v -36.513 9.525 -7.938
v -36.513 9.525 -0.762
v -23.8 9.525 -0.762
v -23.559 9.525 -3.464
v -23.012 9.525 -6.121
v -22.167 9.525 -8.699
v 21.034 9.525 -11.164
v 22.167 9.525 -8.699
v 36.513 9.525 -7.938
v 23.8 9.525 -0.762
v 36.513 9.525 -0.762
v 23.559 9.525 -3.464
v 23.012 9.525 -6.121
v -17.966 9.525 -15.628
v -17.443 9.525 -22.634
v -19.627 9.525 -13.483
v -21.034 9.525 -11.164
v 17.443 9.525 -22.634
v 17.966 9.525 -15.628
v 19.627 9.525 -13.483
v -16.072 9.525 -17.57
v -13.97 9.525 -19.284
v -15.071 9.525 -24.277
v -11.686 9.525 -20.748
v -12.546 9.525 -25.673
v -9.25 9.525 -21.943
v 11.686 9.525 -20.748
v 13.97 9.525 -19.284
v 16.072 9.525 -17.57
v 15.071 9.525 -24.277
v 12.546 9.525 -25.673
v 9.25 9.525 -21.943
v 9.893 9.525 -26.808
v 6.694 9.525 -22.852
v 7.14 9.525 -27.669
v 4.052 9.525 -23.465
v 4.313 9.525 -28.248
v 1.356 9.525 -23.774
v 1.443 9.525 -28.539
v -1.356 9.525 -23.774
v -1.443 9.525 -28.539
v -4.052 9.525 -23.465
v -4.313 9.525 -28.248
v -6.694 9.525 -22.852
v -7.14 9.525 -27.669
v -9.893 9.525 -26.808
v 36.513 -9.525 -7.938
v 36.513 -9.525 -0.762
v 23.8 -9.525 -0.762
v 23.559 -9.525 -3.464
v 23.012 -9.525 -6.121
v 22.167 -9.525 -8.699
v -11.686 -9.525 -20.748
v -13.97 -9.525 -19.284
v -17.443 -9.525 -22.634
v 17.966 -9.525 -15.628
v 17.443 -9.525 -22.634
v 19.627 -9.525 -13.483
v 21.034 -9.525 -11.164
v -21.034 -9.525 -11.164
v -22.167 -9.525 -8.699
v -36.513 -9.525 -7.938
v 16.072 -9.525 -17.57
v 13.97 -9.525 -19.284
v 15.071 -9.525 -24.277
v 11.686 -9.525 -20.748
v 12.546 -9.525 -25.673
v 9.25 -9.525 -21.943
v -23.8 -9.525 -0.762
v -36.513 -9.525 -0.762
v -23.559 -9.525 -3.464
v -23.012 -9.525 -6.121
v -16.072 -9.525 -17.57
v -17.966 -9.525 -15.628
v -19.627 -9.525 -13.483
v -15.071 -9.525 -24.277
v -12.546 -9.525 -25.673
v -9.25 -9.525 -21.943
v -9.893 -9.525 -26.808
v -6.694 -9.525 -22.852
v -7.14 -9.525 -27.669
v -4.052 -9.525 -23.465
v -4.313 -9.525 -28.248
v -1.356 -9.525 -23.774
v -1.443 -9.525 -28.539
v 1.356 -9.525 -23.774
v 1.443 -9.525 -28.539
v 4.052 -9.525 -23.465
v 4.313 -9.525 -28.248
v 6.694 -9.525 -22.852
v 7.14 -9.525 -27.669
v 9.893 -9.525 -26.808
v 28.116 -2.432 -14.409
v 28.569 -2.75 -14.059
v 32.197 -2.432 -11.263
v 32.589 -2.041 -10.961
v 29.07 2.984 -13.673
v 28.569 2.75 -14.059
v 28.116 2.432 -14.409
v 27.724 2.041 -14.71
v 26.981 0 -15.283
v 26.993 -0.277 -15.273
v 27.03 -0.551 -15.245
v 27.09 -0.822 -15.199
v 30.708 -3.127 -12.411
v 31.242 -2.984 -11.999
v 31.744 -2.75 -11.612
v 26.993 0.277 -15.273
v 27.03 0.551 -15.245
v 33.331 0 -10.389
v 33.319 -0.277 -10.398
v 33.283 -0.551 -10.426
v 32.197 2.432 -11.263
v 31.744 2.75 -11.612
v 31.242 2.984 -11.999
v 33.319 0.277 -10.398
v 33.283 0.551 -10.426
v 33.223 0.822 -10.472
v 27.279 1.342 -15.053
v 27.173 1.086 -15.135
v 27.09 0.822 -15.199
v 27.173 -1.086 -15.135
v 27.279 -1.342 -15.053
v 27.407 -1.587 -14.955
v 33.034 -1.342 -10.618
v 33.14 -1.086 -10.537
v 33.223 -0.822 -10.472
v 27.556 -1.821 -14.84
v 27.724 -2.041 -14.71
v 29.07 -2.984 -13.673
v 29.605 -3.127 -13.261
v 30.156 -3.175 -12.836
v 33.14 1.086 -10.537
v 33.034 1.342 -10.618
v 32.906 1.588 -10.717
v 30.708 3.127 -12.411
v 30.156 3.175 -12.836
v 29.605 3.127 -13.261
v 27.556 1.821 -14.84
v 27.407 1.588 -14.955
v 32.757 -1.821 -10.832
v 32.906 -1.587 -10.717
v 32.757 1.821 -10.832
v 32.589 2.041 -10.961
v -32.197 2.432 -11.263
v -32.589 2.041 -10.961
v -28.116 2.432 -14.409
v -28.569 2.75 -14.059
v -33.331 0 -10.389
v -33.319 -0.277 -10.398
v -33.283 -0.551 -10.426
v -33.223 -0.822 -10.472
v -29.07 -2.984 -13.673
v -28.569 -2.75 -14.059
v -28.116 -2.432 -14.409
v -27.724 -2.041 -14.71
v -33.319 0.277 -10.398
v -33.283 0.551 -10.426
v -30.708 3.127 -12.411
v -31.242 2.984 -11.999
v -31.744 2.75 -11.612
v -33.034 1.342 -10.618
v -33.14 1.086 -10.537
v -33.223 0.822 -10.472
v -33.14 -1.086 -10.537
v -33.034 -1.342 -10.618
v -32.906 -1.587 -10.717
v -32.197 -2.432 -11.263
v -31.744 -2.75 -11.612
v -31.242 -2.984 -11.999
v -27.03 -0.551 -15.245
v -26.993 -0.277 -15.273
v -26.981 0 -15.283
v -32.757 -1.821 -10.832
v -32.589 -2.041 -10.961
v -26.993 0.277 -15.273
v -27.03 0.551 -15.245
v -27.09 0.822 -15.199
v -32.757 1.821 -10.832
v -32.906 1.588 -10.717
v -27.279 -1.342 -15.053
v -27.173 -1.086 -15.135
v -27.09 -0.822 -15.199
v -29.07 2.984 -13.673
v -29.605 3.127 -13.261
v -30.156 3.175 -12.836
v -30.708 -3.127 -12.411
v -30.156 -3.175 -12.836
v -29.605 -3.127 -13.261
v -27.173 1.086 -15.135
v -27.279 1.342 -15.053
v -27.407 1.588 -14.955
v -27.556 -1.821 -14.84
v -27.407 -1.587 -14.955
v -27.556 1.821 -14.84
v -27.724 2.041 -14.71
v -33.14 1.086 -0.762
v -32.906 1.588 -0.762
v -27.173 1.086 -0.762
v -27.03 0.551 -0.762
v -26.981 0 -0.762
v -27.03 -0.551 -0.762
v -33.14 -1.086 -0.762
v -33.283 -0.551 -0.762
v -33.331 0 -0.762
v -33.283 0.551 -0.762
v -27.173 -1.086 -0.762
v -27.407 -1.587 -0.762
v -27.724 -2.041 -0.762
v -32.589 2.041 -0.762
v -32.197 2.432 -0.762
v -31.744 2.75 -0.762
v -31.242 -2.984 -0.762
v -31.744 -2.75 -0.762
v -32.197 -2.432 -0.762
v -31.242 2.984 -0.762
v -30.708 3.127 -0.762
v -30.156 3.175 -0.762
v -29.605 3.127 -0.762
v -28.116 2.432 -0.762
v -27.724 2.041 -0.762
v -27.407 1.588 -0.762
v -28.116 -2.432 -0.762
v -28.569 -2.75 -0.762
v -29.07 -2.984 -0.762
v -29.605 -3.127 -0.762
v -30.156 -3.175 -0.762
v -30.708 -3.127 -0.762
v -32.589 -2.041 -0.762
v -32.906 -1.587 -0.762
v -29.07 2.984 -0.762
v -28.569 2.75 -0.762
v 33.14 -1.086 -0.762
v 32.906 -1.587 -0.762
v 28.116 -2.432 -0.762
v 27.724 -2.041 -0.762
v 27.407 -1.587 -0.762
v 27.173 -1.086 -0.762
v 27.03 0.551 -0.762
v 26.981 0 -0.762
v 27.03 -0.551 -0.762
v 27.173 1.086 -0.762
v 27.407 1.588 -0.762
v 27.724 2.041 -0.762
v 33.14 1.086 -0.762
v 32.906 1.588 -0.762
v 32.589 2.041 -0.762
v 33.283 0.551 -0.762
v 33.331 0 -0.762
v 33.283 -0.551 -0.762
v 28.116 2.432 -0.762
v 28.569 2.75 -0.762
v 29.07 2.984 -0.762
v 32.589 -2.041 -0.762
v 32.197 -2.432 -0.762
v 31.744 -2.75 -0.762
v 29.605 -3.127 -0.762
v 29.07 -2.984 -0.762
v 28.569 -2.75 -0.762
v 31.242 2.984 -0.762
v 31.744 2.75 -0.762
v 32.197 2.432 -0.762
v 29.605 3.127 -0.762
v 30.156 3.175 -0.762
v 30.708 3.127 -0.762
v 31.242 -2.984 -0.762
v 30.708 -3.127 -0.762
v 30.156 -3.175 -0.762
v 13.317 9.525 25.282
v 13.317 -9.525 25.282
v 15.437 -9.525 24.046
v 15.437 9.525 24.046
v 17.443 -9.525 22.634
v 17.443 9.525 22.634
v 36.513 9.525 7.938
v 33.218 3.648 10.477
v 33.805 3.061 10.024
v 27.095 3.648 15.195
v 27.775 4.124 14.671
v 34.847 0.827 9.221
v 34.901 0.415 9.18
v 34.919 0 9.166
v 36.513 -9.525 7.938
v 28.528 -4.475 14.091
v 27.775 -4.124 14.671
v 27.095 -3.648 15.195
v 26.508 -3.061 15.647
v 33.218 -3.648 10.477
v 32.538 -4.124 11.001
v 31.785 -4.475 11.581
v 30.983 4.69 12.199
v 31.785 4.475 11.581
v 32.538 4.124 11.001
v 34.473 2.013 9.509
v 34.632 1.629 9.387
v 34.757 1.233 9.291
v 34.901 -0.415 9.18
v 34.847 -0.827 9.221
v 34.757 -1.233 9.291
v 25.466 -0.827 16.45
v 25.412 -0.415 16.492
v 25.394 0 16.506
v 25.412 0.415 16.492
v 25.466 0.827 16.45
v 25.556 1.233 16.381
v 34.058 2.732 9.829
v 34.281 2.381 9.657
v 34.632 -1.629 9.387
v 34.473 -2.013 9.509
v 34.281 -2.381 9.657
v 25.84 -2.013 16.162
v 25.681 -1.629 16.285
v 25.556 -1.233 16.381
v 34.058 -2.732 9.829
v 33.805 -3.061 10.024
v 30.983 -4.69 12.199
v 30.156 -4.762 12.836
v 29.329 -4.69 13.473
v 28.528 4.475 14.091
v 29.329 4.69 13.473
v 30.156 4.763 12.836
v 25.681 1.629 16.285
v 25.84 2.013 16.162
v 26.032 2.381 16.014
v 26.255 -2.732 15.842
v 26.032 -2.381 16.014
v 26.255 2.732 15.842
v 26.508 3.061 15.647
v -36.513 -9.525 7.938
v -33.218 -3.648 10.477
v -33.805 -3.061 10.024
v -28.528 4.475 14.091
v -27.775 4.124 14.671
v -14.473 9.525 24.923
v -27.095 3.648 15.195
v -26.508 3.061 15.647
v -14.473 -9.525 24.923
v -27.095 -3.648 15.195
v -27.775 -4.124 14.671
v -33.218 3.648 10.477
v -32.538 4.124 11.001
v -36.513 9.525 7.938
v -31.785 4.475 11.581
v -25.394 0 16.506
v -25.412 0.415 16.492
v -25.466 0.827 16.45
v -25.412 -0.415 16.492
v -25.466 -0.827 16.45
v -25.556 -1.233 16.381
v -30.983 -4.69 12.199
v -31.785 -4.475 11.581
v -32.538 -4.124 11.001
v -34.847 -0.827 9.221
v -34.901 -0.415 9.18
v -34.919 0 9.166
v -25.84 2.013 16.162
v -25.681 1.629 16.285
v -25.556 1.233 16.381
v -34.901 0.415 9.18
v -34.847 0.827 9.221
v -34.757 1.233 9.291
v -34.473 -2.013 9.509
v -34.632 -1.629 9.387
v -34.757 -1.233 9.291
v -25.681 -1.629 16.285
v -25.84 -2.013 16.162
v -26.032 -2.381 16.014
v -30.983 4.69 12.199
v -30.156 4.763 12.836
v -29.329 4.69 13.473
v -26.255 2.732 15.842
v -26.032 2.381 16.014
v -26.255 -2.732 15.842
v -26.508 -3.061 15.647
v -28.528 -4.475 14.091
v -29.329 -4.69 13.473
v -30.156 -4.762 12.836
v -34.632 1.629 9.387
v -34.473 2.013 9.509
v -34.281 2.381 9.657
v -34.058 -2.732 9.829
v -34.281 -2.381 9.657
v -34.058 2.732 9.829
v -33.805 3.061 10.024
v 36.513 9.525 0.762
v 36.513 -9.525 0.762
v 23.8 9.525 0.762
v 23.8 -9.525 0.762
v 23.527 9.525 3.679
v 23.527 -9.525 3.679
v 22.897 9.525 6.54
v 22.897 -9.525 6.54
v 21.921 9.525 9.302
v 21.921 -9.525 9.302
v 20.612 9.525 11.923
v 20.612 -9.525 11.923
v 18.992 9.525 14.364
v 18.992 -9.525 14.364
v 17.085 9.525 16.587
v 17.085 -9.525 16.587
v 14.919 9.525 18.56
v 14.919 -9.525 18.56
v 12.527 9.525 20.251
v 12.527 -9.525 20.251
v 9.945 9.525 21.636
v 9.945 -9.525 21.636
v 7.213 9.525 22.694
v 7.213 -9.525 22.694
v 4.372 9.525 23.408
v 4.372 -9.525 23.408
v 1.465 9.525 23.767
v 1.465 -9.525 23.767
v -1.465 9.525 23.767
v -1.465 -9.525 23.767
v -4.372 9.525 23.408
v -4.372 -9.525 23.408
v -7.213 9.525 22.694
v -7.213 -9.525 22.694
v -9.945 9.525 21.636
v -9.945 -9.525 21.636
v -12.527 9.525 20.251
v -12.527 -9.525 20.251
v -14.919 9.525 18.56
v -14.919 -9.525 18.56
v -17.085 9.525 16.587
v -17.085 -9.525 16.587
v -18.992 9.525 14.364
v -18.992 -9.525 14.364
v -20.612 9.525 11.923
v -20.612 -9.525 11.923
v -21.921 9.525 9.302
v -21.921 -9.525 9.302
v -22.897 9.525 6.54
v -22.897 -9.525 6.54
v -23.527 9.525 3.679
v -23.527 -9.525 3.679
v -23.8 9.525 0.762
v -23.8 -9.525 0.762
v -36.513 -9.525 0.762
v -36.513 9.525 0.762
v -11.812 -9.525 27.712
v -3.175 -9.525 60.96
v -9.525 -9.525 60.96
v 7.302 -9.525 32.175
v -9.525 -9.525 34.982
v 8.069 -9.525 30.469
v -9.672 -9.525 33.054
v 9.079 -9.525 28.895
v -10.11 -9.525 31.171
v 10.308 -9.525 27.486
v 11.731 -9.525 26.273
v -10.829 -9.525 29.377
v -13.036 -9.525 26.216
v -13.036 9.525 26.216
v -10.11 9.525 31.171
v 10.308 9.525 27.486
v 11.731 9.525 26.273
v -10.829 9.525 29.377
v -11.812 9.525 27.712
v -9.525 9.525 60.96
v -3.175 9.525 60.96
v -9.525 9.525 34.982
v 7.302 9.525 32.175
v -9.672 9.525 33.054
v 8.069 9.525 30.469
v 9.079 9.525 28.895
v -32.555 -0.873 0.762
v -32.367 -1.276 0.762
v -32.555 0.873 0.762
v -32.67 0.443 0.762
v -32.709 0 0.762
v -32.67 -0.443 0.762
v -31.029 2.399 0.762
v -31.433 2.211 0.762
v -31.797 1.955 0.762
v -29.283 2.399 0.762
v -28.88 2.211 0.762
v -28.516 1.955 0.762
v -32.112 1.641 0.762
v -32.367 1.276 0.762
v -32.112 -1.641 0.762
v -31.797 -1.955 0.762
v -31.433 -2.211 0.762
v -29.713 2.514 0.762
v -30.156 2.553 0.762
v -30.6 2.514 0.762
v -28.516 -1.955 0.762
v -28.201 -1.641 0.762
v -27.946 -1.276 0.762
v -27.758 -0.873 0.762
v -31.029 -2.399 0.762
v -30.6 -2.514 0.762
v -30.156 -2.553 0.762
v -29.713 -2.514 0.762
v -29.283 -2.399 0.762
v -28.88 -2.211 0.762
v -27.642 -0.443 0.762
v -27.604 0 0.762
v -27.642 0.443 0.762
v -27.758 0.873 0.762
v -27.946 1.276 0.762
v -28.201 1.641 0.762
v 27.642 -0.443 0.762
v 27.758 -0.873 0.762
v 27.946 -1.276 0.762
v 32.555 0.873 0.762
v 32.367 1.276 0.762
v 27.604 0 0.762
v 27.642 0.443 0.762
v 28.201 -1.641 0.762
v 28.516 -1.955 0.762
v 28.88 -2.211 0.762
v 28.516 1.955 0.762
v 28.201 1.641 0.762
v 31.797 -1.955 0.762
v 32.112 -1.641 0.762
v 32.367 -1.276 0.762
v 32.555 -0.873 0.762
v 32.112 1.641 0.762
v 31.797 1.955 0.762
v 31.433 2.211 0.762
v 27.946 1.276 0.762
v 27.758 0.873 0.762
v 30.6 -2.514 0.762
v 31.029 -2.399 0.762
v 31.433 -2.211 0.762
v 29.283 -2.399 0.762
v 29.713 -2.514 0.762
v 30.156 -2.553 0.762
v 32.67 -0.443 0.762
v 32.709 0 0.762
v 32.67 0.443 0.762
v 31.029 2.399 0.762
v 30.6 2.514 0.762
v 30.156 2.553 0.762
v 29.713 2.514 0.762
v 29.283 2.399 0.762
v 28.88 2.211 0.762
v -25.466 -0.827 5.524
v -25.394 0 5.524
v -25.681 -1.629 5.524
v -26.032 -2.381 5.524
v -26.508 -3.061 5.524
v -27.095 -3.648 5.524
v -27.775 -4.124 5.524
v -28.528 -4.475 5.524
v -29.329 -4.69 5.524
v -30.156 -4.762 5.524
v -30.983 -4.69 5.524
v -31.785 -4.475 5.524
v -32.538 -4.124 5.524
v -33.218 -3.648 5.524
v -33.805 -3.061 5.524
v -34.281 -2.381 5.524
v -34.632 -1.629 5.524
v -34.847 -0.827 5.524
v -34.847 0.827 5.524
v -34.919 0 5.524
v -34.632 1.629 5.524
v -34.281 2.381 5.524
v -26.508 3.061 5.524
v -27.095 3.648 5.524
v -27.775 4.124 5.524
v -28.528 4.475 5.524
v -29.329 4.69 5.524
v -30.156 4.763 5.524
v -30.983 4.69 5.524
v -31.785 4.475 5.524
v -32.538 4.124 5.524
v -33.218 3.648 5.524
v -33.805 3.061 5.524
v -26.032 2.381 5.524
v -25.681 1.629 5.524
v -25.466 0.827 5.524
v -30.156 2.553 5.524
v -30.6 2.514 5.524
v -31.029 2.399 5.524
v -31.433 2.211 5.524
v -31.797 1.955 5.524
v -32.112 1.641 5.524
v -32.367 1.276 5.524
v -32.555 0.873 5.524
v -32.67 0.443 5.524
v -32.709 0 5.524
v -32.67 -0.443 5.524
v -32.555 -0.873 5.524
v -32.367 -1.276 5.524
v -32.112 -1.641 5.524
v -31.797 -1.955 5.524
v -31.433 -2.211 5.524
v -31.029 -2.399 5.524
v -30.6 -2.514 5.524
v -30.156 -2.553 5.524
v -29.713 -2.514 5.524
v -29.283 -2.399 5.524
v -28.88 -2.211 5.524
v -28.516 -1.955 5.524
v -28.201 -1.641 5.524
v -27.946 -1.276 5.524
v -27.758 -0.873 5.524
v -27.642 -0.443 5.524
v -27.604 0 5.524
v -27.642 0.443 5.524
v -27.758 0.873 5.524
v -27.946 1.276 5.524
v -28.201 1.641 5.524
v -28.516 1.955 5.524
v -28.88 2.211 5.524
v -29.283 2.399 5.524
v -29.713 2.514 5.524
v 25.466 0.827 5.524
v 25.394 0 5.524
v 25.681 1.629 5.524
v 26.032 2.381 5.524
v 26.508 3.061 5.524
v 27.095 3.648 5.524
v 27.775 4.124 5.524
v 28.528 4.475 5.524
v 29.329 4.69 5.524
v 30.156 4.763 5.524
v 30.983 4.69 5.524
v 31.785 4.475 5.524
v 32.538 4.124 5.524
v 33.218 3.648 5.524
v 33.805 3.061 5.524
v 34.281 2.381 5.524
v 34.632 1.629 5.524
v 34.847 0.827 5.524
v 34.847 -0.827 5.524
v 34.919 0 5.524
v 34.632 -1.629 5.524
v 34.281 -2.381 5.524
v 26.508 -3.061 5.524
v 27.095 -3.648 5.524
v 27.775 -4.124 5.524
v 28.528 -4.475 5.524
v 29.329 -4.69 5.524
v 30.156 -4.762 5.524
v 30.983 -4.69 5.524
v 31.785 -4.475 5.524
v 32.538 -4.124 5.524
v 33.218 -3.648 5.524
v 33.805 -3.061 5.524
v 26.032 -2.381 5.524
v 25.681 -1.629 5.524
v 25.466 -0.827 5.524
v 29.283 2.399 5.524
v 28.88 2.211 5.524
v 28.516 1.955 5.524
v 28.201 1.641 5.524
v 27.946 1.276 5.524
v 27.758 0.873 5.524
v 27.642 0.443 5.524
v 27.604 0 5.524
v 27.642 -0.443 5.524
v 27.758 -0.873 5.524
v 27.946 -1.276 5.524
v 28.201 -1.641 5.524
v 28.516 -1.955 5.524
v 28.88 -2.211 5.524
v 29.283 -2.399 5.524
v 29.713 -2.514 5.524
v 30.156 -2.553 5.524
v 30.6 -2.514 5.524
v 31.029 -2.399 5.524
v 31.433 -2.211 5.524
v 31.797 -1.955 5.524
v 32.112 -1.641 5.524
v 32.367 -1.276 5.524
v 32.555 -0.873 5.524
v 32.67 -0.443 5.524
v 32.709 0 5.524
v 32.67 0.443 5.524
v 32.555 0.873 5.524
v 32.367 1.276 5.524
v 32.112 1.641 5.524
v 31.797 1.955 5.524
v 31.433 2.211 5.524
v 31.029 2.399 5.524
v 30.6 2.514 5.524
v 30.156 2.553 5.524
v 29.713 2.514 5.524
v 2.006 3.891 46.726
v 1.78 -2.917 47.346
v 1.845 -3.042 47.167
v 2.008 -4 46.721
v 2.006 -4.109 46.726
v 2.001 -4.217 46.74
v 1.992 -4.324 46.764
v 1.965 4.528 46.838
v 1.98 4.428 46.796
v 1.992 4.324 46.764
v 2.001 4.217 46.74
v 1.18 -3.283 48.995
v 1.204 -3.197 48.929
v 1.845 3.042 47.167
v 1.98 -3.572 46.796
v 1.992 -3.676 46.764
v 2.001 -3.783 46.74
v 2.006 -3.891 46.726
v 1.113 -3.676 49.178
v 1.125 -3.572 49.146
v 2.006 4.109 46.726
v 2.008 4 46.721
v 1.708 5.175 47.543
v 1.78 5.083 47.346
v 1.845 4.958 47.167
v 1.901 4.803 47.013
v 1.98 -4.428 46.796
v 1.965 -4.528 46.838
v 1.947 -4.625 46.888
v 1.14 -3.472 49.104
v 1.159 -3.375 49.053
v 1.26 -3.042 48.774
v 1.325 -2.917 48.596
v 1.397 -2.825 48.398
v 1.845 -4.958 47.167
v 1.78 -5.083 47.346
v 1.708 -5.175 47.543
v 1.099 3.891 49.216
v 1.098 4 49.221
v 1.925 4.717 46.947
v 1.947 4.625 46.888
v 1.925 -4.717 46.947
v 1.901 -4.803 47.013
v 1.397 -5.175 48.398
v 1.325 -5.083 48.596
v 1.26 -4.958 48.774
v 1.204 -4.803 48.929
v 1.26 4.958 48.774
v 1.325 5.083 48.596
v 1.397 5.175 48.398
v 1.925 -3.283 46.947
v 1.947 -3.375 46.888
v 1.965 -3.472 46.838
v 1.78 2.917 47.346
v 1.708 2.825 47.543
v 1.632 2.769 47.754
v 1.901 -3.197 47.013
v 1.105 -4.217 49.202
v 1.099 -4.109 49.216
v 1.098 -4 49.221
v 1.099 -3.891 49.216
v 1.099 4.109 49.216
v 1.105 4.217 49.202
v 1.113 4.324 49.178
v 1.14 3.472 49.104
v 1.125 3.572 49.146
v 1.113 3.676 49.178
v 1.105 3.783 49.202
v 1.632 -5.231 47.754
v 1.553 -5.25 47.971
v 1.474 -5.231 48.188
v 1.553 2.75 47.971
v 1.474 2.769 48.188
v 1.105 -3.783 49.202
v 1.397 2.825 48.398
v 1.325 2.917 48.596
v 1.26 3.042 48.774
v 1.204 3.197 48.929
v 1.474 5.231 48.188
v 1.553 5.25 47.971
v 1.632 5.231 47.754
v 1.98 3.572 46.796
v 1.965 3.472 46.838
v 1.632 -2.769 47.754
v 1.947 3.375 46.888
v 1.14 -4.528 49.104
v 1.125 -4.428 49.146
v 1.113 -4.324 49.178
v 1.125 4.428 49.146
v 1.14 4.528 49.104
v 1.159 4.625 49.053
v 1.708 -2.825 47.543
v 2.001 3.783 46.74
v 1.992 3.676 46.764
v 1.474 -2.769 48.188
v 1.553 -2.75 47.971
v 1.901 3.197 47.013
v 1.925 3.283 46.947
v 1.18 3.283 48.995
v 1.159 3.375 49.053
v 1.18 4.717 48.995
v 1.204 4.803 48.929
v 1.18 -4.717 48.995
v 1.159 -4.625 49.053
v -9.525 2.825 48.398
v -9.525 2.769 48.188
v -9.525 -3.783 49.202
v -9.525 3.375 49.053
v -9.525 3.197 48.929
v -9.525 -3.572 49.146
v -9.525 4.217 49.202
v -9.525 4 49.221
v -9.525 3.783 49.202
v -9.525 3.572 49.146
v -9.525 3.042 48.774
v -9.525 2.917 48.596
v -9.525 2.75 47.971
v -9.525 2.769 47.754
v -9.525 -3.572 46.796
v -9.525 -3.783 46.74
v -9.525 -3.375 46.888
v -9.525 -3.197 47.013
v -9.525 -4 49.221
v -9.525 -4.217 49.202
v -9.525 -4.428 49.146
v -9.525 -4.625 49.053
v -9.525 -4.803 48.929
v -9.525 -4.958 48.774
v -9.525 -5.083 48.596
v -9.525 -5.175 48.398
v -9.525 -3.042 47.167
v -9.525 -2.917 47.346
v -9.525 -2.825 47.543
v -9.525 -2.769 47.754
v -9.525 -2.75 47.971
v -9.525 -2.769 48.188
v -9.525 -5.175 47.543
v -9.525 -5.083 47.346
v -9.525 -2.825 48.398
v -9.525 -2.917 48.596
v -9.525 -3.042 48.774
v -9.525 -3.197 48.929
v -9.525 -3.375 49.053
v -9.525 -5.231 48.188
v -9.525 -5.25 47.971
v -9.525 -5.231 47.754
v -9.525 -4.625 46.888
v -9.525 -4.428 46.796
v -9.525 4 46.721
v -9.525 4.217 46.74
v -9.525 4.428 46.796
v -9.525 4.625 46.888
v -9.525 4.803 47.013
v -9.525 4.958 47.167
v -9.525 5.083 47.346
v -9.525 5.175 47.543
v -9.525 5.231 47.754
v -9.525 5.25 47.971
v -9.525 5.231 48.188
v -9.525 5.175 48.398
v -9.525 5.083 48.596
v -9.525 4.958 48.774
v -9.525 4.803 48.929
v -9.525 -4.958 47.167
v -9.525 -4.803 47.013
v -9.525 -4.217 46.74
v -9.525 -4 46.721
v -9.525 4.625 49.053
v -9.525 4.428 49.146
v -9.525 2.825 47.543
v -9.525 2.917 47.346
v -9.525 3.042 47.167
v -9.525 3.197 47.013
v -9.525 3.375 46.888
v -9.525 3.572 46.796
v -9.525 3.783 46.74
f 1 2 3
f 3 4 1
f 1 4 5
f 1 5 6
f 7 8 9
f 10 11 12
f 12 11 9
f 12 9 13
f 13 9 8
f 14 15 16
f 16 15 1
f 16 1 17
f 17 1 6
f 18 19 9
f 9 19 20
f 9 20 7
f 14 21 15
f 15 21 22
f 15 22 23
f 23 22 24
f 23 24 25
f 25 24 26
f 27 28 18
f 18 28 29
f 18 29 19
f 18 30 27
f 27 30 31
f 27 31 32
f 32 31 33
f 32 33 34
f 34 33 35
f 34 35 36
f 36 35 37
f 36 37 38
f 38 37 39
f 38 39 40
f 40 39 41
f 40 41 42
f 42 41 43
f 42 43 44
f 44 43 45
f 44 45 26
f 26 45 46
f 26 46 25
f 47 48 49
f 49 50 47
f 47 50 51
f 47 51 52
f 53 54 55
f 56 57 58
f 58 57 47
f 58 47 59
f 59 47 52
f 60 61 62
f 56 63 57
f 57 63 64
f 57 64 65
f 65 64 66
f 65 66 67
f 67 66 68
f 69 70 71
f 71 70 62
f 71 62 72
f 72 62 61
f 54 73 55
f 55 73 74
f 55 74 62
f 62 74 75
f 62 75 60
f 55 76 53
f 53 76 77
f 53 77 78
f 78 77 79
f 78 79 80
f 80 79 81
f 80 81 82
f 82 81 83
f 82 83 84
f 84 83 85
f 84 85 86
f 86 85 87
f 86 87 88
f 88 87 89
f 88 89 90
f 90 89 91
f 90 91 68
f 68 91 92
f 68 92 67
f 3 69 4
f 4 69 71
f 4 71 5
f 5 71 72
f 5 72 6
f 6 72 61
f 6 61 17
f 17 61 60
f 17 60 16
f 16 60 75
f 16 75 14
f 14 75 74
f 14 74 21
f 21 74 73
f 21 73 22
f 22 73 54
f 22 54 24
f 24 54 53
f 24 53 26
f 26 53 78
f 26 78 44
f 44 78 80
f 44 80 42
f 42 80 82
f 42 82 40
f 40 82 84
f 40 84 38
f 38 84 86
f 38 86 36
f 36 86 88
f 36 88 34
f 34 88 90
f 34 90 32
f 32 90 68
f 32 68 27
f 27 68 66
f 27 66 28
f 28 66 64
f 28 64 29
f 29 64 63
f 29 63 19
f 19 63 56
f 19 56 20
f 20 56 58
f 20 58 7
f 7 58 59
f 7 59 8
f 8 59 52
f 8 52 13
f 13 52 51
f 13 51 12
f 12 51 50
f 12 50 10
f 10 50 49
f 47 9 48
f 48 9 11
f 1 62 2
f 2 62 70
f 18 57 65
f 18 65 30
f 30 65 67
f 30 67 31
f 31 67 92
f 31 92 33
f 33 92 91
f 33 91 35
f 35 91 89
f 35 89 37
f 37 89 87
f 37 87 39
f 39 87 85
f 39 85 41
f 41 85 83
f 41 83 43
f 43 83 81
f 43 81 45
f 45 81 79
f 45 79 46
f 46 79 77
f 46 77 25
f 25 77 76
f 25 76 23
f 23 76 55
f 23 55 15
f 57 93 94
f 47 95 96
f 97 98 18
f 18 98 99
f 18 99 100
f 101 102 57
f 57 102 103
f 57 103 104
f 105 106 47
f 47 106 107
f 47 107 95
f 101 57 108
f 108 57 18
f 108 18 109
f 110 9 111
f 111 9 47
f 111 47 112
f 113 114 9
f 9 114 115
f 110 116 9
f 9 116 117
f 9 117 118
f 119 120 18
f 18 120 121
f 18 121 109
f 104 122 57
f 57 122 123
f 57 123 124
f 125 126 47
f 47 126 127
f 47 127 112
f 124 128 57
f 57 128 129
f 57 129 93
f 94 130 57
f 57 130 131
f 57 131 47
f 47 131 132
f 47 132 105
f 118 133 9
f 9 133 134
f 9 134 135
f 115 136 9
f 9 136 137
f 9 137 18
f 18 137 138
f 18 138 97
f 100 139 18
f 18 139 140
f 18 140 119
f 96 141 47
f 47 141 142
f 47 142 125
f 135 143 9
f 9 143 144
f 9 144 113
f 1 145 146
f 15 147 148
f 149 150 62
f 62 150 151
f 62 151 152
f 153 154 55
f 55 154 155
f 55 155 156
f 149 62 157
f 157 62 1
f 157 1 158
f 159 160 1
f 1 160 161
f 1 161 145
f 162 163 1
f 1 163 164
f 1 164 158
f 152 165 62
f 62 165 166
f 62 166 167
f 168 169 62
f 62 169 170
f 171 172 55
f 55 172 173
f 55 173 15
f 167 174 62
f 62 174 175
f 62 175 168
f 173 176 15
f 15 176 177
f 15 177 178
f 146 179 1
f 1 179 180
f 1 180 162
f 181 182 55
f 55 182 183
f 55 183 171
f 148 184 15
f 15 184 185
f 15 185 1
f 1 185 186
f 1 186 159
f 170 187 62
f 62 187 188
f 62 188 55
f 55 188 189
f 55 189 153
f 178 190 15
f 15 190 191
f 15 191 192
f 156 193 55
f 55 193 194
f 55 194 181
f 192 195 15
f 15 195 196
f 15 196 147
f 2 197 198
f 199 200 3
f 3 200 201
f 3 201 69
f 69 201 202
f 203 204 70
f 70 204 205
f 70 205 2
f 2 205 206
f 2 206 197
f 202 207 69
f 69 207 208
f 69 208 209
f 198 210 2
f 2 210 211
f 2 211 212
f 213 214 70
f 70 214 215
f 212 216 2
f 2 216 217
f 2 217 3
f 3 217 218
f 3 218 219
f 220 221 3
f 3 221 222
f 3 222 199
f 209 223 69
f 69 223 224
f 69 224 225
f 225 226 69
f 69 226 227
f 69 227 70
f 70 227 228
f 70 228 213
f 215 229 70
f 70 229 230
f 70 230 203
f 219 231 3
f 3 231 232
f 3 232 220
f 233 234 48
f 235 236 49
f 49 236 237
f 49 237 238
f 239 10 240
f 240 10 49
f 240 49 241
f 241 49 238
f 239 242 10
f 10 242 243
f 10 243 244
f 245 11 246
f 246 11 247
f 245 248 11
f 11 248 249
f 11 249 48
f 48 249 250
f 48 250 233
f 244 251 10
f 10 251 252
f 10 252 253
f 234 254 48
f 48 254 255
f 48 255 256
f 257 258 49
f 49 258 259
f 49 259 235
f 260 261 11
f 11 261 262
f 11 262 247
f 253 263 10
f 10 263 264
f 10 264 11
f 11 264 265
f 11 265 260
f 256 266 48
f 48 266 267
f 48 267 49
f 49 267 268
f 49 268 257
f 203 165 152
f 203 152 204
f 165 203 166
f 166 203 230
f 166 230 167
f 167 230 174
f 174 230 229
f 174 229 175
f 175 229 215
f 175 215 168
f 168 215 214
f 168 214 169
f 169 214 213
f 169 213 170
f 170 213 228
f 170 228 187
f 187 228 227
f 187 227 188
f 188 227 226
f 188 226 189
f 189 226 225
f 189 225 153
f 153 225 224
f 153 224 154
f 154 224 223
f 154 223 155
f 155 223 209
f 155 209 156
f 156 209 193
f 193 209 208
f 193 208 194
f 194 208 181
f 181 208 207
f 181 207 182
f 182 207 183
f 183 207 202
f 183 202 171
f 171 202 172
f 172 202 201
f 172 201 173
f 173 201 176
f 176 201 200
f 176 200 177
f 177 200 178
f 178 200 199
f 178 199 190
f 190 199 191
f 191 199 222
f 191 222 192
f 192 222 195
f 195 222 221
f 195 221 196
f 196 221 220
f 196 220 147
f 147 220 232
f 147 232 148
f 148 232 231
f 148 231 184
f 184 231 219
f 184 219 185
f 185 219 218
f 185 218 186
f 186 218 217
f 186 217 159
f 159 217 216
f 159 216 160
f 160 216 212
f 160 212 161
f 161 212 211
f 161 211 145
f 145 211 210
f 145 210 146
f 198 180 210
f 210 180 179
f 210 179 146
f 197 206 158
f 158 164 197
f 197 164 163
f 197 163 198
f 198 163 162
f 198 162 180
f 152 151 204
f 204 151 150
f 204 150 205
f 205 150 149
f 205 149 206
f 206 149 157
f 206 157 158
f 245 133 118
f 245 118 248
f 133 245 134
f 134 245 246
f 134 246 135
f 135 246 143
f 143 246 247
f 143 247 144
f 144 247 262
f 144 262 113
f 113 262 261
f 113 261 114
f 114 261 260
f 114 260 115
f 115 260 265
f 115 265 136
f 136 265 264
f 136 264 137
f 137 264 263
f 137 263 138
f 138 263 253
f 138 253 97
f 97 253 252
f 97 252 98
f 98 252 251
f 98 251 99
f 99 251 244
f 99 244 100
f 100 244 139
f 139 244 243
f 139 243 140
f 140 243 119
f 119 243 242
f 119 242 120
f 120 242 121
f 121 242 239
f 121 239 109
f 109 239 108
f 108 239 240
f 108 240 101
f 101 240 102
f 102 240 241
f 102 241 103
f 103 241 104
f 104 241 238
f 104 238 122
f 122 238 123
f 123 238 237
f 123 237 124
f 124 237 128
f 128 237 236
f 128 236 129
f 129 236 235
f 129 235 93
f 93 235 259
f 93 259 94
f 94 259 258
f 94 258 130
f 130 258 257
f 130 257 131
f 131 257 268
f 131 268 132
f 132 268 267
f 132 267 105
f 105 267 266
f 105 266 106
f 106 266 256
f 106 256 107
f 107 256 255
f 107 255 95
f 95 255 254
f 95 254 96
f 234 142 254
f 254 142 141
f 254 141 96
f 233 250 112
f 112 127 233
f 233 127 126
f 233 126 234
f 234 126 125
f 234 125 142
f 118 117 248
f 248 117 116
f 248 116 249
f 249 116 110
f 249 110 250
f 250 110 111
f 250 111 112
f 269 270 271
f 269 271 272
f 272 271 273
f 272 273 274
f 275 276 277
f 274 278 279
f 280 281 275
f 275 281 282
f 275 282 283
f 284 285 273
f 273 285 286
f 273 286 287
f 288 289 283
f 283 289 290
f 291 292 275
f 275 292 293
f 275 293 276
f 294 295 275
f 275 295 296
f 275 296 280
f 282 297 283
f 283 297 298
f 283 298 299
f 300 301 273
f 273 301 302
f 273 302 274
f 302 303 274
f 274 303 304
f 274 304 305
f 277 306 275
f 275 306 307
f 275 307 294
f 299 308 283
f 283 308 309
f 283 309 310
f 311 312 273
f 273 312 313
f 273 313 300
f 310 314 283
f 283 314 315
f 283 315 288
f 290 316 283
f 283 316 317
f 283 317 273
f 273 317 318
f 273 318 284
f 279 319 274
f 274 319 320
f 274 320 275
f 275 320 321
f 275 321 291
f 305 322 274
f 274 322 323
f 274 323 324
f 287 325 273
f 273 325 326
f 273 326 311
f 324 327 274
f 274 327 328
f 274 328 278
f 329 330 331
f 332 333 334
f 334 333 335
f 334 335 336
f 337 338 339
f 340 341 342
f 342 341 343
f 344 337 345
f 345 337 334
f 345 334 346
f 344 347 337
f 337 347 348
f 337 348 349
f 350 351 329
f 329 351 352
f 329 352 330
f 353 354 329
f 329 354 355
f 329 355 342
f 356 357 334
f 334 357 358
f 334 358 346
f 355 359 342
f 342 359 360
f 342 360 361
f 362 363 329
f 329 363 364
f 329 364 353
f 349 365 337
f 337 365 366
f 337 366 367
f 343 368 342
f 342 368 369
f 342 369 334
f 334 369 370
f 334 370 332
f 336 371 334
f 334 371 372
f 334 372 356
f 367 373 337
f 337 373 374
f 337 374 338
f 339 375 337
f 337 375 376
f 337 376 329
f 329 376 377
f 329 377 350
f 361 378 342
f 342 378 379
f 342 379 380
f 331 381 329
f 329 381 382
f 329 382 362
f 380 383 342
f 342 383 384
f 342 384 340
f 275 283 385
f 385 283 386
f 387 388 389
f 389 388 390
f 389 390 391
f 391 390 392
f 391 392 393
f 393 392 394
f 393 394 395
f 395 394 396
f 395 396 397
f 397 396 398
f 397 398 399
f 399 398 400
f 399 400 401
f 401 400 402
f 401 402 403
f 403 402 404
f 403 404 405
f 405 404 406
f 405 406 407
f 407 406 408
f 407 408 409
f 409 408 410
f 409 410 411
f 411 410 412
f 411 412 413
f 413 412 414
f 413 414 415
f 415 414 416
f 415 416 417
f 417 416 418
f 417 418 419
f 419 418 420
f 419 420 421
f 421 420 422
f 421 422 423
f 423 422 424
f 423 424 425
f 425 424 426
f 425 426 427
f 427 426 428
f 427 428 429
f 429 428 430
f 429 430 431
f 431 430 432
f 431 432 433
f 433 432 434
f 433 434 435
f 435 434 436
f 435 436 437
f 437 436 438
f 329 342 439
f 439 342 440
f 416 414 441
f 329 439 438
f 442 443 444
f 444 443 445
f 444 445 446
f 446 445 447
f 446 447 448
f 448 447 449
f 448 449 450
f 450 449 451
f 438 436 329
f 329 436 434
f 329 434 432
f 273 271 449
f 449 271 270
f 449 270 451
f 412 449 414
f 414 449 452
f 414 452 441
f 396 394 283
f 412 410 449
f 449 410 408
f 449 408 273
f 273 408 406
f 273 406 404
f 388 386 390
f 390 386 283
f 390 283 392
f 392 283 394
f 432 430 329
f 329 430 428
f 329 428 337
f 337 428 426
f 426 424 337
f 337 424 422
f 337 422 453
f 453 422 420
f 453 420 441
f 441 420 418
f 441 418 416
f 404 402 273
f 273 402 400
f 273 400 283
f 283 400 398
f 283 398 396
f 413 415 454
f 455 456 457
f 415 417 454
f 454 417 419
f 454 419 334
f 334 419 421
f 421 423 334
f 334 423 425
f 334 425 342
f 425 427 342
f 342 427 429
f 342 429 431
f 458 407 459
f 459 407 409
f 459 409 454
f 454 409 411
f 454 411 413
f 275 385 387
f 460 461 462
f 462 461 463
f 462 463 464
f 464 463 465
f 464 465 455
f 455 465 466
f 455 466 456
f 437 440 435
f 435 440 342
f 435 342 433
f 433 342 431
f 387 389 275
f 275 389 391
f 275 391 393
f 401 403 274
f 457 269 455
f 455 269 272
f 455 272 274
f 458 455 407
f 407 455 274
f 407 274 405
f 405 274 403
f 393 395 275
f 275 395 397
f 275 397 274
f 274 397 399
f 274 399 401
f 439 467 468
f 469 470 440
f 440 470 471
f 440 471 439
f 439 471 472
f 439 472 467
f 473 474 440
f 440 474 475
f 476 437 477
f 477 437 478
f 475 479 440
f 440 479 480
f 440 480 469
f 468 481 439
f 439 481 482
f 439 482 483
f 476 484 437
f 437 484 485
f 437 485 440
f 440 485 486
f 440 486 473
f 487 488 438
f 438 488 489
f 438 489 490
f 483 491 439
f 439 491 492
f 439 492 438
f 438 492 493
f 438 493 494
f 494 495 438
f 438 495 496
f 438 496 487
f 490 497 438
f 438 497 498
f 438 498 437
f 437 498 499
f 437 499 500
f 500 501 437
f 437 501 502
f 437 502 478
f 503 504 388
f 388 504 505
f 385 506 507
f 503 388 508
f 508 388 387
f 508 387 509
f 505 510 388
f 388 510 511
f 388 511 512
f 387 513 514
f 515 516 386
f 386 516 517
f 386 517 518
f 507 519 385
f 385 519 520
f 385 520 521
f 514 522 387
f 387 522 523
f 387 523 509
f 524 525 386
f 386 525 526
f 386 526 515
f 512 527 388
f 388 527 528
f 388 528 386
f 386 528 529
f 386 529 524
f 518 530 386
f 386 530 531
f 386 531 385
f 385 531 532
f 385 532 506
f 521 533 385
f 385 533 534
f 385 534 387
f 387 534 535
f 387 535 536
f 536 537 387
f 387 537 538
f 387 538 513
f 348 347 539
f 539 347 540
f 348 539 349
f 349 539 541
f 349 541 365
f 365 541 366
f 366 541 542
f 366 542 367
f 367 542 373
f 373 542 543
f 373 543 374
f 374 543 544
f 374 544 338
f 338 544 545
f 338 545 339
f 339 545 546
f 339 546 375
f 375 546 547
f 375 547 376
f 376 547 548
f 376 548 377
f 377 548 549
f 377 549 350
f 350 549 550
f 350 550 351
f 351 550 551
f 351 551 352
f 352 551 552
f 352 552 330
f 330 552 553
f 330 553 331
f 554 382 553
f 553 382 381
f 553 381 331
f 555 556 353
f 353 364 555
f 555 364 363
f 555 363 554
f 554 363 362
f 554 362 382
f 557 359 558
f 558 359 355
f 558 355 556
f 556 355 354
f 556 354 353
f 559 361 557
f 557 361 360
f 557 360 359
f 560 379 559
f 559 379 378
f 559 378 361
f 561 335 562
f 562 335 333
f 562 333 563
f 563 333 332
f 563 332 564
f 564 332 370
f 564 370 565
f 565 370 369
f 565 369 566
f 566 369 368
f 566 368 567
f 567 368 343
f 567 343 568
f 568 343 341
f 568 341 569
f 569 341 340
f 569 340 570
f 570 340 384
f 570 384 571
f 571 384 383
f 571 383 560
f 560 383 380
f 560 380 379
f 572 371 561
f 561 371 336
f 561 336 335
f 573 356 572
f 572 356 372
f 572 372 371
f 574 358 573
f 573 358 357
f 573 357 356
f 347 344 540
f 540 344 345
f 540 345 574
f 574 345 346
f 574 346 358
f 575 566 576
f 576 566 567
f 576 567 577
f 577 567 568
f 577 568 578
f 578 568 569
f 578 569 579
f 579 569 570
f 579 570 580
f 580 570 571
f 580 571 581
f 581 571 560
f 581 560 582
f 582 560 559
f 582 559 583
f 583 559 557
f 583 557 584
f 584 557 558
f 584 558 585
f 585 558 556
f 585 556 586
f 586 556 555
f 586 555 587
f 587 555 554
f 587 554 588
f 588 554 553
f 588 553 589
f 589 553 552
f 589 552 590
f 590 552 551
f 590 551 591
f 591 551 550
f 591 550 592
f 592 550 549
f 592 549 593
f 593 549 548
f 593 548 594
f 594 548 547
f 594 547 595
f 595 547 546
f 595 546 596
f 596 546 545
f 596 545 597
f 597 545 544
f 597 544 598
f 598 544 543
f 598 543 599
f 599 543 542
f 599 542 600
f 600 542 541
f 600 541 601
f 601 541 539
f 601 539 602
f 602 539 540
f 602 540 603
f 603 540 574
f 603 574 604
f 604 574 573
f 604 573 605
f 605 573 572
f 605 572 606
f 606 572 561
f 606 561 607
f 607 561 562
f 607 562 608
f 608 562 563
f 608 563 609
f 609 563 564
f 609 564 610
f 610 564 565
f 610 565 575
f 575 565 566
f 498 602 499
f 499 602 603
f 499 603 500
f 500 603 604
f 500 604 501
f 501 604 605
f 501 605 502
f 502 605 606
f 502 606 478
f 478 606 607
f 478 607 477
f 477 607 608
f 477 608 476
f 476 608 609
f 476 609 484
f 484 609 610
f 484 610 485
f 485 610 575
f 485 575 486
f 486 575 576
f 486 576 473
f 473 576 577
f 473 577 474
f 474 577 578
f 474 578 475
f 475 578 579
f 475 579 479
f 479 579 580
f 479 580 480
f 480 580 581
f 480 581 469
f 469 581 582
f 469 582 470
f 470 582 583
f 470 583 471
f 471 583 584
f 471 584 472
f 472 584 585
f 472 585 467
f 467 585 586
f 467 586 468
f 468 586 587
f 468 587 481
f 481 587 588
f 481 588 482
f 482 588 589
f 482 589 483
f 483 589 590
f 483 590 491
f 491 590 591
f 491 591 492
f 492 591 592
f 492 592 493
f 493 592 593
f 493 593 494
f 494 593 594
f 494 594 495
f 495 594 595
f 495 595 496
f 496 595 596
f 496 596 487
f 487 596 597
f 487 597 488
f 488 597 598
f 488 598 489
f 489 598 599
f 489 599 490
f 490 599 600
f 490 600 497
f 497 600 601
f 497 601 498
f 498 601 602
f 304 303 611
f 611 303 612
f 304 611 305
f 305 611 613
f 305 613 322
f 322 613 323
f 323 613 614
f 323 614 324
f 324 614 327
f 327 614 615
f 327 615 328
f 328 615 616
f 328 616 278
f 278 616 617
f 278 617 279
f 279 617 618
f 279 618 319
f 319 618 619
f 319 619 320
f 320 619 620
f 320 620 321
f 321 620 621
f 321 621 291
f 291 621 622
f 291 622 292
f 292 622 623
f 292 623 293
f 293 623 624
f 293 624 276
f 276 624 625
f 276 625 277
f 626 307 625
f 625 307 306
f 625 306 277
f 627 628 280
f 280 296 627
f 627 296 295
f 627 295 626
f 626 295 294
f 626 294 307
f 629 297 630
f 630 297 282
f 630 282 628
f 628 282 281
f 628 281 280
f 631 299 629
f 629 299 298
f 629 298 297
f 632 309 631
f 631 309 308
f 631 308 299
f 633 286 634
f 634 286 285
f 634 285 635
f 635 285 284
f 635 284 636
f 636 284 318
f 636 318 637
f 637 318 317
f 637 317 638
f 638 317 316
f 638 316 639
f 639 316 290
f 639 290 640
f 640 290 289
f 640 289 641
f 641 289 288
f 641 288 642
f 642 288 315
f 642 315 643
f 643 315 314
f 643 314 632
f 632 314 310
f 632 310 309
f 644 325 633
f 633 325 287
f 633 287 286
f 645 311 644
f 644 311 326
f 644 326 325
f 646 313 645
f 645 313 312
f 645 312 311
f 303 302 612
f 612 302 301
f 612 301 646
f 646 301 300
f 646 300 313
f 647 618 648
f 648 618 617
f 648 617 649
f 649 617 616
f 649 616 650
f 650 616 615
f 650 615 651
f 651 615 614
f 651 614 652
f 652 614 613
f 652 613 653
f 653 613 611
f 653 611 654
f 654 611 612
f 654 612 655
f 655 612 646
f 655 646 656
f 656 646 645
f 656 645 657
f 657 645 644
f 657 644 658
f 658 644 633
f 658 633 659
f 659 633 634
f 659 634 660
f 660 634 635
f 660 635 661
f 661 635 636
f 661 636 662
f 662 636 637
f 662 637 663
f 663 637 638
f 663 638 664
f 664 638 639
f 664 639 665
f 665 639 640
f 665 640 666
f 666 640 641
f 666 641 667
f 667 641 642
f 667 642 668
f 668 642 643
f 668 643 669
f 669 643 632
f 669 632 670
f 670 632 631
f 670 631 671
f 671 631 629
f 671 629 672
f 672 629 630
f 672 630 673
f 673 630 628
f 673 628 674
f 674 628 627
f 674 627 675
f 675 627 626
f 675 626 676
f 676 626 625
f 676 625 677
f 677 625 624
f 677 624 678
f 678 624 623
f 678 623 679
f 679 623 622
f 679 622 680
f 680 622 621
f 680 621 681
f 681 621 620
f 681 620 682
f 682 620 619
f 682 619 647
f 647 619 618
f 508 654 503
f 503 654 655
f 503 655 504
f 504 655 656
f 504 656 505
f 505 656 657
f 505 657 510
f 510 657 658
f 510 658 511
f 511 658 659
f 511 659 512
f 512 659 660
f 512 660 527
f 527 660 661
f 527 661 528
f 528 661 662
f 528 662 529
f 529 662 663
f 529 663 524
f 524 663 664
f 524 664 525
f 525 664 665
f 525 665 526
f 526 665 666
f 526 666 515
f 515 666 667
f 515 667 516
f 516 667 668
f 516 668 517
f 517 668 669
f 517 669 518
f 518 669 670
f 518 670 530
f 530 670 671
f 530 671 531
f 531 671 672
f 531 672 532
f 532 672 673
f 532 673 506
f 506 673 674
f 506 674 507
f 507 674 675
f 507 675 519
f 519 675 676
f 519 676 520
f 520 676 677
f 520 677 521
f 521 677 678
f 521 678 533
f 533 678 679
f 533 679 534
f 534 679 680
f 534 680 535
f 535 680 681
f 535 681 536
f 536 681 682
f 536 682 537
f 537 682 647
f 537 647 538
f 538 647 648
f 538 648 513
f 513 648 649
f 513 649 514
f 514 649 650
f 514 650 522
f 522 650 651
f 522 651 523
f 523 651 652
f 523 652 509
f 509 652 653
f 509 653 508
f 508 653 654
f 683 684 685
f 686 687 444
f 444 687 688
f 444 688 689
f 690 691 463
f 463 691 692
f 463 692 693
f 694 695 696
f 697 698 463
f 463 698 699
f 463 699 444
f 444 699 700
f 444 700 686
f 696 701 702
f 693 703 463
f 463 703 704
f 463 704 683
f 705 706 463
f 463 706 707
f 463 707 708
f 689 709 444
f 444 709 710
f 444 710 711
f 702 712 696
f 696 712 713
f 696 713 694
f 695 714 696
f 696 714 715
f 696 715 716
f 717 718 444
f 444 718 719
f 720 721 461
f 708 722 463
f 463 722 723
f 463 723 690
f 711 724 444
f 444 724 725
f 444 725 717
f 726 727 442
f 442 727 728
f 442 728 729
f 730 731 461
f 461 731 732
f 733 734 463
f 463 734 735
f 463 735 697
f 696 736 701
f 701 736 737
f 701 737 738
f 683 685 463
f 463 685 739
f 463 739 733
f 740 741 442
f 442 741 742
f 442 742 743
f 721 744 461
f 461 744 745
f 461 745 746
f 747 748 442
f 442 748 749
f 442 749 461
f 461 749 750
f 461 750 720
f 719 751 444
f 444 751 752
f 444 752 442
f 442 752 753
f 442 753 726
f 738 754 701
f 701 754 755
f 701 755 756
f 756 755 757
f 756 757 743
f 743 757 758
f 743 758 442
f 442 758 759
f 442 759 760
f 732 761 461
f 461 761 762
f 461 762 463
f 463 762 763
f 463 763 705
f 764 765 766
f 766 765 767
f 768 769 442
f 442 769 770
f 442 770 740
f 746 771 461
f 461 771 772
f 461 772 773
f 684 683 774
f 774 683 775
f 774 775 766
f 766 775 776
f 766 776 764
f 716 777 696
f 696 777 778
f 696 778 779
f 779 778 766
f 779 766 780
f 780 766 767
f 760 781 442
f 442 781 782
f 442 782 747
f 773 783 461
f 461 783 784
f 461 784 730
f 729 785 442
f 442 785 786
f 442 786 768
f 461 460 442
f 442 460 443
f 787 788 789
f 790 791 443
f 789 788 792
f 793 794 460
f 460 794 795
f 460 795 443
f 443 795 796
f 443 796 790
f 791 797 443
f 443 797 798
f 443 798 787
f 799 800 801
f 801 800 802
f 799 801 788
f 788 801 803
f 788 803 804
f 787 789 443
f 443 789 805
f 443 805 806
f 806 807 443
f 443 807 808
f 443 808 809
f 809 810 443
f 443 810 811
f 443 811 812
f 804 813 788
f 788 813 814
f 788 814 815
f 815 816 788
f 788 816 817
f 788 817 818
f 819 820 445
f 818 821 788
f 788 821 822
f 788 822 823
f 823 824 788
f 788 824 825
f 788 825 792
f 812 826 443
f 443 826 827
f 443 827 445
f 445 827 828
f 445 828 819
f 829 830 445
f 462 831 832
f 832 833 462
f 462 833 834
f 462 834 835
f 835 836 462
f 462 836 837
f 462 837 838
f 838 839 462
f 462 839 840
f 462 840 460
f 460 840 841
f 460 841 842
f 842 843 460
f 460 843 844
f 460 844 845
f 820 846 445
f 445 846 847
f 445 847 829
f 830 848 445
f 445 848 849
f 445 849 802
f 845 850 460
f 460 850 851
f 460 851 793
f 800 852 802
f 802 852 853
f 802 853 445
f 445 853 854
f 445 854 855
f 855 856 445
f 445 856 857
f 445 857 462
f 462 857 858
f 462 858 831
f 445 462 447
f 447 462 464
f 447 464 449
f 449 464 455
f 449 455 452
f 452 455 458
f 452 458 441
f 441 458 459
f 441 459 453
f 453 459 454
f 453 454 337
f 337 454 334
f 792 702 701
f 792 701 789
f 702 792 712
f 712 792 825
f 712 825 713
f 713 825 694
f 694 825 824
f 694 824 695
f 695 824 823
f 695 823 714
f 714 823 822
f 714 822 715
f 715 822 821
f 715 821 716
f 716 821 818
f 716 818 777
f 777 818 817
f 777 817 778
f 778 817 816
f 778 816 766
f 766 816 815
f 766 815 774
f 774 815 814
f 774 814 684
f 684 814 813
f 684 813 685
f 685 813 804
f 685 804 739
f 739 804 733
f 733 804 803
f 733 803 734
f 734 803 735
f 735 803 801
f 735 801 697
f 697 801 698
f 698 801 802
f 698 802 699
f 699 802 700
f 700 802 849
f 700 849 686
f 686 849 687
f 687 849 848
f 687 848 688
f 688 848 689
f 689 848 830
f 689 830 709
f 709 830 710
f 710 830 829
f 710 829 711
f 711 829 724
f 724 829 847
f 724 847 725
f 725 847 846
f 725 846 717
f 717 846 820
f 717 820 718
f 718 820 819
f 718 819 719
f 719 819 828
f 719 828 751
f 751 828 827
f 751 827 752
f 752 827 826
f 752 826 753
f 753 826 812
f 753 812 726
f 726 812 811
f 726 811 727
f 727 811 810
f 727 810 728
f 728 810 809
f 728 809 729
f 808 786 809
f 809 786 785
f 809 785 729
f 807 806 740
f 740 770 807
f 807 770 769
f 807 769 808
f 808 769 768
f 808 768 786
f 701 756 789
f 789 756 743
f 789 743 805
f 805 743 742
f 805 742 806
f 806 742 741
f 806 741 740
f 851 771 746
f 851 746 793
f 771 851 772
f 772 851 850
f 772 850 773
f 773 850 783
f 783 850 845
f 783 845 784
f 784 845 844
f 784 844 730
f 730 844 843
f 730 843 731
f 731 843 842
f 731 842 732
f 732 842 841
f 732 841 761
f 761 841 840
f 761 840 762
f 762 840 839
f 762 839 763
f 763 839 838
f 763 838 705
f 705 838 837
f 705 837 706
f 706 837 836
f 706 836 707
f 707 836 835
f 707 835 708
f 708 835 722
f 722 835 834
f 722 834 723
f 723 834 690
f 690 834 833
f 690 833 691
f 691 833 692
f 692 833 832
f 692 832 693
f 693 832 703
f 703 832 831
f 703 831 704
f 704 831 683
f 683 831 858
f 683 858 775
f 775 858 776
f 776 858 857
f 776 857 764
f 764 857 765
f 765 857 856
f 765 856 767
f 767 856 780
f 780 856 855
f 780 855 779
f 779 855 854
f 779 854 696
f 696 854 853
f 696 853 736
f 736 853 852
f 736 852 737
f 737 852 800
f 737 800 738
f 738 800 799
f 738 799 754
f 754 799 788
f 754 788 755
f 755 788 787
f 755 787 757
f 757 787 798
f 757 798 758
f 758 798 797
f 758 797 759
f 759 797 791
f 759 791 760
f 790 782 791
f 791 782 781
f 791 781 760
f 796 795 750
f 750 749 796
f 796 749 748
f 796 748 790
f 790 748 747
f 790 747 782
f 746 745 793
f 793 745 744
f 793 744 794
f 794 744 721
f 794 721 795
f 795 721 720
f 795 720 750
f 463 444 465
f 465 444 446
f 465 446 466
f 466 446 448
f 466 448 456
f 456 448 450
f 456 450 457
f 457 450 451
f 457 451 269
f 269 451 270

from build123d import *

# Parameters (mm, degrees)
SKETCH1_R               = 28.575
SKETCH1_R_2             = 23.8125
BOSS_EXTRUDE1_DEPTH     = 9.525
BOSS_EXTRUDE2_DEPTH     = 19.05
SKETCH3_W               = 73.025
SKETCH3_H               = 1.524
CUT_EXTRUDE1_DEPTH      = 1
CUT_EXTRUDE1_DEPTH_BACK = 20.05
BOSS_EXTRUDE3_DEPTH     = 19.05
M3X0_5_TAPPED_HOLE1_D   = 2.5
FILLET1_R               = 12.7


with BuildPart() as part:
    # Sketch1 → Boss-Extrude1 (new body, symmetric)
    with BuildSketch(Plane(origin=(0, 0, 0), x_dir=(1, 0, 0), z_dir=(0, 1, 0))):
        Circle(SKETCH1_R)
        Circle(SKETCH1_R_2, mode=Mode.SUBTRACT)
    extrude(amount=BOSS_EXTRUDE1_DEPTH, both=True)

    # Sketch2 → Boss-Extrude2 (add)
    with BuildSketch(Plane(origin=(0, 9.525, 0), x_dir=(1, 0, 0), z_dir=(0, 1, 0))):
        with BuildLine():
            Line((-17.442677512, 22.633683443), (-36.5125, 7.9375))
            Line((-36.5125, 7.9375), (-36.5125, -7.9375))
            Line((-36.5125, -7.9375), (-17.442677512, -22.633683443))
            ThreePointArc((-17.442677512, -22.633683443), (-28.575, 0), (-17.442677512, 22.633683443))
        make_face()
        with BuildLine():
            Line((36.5125, -7.9375), (17.442677512, -22.633683443))
            ThreePointArc((17.442677512, -22.633683443), (28.575, 0), (17.442677512, 22.633683443))
            Line((17.442677512, 22.633683443), (36.5125, 7.9375))
            Line((36.5125, 7.9375), (36.5125, -7.9375))
        make_face()
    extrude(amount=-BOSS_EXTRUDE2_DEPTH)

    # Sketch3 → Cut-Extrude1 (cut, two sides)
    with BuildSketch(Plane(origin=(0, 9.525, 0), x_dir=(1, 0, 0), z_dir=(0, 1, 0))) as cut_extrude1_sk:
        Rectangle(SKETCH3_W, SKETCH3_H)
    extrude(amount=CUT_EXTRUDE1_DEPTH, mode=Mode.SUBTRACT)
    extrude(cut_extrude1_sk.sketch, amount=-CUT_EXTRUDE1_DEPTH_BACK, mode=Mode.SUBTRACT)

    # Sketch4 → Cut-Revolve1 (revolve, cut)
    with BuildSketch(Plane(origin=(0, 0, 0), x_dir=(1, 0, 0), z_dir=(0, 1, 0))):
        Polygon((-27.603702439, -0.762), (-27.603702439, -5.5245), (-25.393902439, -5.5245), (-25.393902439, -16.506061637), (-30.156402439, -16.506061637), (-30.156402439, 15.282652702), (-26.981402439, 15.282652702), (-26.981402439, 0.762), align=None)
    cut_revolve1 = revolve(axis=Axis((-30.156402439, 0, -15.282652702), (0, 0, -1)), mode=Mode.SUBTRACT)

    # Mirror1: Cut-Revolve1 across plane
    add(cut_revolve1.mirror(Plane(origin=(0, 0, 0), x_dir=(0, 0, 1), z_dir=(1, 0, 0))), mode=Mode.SUBTRACT)

    # Sketch5 → Boss-Extrude3 (add)
    with BuildSketch(Plane(origin=(0, 9.525, 0), x_dir=(1, 0, 0), z_dir=(0, 1, 0))):
        with BuildLine():
            Line((9.161170255, -27.066650782), (-3.175, -60.96))
            Line((-3.175, -60.96), (-9.525, -60.96))
            Line((-9.525, -60.96), (-9.525, -34.981916191))
            ThreePointArc((-9.525, -34.981916191), (-10.828855385, -29.37675001), (-14.472698883, -24.922501327))
            Line((-14.472698883, -24.922501327), (-17.442677512, -22.633683443))
            ThreePointArc((-17.442677512, -22.633683443), (-4.696662695, -28.186379415), (9.161170255, -27.066650782))
        make_face()
    extrude(amount=-BOSS_EXTRUDE3_DEPTH)

    # M3x0.5 Tapped Hole1 (through all)
    with Locations(Plane(origin=(-9.525, 0, 0), x_dir=(0, 0, -1), z_dir=(-1, 0, 0))):
        with Locations((-47.970958095, -4), (-47.970958095, 4)):
            Hole(M3X0_5_TAPPED_HOLE1_D / 2)

    # Fillet1
    fillet1_edges = [part.edges().sort_by_distance(p)[0] for p in [
        (9.161170255, 0, 27.066650782),
    ]]
    fillet(fillet1_edges, radius=FILLET1_R)


solid = part.part
